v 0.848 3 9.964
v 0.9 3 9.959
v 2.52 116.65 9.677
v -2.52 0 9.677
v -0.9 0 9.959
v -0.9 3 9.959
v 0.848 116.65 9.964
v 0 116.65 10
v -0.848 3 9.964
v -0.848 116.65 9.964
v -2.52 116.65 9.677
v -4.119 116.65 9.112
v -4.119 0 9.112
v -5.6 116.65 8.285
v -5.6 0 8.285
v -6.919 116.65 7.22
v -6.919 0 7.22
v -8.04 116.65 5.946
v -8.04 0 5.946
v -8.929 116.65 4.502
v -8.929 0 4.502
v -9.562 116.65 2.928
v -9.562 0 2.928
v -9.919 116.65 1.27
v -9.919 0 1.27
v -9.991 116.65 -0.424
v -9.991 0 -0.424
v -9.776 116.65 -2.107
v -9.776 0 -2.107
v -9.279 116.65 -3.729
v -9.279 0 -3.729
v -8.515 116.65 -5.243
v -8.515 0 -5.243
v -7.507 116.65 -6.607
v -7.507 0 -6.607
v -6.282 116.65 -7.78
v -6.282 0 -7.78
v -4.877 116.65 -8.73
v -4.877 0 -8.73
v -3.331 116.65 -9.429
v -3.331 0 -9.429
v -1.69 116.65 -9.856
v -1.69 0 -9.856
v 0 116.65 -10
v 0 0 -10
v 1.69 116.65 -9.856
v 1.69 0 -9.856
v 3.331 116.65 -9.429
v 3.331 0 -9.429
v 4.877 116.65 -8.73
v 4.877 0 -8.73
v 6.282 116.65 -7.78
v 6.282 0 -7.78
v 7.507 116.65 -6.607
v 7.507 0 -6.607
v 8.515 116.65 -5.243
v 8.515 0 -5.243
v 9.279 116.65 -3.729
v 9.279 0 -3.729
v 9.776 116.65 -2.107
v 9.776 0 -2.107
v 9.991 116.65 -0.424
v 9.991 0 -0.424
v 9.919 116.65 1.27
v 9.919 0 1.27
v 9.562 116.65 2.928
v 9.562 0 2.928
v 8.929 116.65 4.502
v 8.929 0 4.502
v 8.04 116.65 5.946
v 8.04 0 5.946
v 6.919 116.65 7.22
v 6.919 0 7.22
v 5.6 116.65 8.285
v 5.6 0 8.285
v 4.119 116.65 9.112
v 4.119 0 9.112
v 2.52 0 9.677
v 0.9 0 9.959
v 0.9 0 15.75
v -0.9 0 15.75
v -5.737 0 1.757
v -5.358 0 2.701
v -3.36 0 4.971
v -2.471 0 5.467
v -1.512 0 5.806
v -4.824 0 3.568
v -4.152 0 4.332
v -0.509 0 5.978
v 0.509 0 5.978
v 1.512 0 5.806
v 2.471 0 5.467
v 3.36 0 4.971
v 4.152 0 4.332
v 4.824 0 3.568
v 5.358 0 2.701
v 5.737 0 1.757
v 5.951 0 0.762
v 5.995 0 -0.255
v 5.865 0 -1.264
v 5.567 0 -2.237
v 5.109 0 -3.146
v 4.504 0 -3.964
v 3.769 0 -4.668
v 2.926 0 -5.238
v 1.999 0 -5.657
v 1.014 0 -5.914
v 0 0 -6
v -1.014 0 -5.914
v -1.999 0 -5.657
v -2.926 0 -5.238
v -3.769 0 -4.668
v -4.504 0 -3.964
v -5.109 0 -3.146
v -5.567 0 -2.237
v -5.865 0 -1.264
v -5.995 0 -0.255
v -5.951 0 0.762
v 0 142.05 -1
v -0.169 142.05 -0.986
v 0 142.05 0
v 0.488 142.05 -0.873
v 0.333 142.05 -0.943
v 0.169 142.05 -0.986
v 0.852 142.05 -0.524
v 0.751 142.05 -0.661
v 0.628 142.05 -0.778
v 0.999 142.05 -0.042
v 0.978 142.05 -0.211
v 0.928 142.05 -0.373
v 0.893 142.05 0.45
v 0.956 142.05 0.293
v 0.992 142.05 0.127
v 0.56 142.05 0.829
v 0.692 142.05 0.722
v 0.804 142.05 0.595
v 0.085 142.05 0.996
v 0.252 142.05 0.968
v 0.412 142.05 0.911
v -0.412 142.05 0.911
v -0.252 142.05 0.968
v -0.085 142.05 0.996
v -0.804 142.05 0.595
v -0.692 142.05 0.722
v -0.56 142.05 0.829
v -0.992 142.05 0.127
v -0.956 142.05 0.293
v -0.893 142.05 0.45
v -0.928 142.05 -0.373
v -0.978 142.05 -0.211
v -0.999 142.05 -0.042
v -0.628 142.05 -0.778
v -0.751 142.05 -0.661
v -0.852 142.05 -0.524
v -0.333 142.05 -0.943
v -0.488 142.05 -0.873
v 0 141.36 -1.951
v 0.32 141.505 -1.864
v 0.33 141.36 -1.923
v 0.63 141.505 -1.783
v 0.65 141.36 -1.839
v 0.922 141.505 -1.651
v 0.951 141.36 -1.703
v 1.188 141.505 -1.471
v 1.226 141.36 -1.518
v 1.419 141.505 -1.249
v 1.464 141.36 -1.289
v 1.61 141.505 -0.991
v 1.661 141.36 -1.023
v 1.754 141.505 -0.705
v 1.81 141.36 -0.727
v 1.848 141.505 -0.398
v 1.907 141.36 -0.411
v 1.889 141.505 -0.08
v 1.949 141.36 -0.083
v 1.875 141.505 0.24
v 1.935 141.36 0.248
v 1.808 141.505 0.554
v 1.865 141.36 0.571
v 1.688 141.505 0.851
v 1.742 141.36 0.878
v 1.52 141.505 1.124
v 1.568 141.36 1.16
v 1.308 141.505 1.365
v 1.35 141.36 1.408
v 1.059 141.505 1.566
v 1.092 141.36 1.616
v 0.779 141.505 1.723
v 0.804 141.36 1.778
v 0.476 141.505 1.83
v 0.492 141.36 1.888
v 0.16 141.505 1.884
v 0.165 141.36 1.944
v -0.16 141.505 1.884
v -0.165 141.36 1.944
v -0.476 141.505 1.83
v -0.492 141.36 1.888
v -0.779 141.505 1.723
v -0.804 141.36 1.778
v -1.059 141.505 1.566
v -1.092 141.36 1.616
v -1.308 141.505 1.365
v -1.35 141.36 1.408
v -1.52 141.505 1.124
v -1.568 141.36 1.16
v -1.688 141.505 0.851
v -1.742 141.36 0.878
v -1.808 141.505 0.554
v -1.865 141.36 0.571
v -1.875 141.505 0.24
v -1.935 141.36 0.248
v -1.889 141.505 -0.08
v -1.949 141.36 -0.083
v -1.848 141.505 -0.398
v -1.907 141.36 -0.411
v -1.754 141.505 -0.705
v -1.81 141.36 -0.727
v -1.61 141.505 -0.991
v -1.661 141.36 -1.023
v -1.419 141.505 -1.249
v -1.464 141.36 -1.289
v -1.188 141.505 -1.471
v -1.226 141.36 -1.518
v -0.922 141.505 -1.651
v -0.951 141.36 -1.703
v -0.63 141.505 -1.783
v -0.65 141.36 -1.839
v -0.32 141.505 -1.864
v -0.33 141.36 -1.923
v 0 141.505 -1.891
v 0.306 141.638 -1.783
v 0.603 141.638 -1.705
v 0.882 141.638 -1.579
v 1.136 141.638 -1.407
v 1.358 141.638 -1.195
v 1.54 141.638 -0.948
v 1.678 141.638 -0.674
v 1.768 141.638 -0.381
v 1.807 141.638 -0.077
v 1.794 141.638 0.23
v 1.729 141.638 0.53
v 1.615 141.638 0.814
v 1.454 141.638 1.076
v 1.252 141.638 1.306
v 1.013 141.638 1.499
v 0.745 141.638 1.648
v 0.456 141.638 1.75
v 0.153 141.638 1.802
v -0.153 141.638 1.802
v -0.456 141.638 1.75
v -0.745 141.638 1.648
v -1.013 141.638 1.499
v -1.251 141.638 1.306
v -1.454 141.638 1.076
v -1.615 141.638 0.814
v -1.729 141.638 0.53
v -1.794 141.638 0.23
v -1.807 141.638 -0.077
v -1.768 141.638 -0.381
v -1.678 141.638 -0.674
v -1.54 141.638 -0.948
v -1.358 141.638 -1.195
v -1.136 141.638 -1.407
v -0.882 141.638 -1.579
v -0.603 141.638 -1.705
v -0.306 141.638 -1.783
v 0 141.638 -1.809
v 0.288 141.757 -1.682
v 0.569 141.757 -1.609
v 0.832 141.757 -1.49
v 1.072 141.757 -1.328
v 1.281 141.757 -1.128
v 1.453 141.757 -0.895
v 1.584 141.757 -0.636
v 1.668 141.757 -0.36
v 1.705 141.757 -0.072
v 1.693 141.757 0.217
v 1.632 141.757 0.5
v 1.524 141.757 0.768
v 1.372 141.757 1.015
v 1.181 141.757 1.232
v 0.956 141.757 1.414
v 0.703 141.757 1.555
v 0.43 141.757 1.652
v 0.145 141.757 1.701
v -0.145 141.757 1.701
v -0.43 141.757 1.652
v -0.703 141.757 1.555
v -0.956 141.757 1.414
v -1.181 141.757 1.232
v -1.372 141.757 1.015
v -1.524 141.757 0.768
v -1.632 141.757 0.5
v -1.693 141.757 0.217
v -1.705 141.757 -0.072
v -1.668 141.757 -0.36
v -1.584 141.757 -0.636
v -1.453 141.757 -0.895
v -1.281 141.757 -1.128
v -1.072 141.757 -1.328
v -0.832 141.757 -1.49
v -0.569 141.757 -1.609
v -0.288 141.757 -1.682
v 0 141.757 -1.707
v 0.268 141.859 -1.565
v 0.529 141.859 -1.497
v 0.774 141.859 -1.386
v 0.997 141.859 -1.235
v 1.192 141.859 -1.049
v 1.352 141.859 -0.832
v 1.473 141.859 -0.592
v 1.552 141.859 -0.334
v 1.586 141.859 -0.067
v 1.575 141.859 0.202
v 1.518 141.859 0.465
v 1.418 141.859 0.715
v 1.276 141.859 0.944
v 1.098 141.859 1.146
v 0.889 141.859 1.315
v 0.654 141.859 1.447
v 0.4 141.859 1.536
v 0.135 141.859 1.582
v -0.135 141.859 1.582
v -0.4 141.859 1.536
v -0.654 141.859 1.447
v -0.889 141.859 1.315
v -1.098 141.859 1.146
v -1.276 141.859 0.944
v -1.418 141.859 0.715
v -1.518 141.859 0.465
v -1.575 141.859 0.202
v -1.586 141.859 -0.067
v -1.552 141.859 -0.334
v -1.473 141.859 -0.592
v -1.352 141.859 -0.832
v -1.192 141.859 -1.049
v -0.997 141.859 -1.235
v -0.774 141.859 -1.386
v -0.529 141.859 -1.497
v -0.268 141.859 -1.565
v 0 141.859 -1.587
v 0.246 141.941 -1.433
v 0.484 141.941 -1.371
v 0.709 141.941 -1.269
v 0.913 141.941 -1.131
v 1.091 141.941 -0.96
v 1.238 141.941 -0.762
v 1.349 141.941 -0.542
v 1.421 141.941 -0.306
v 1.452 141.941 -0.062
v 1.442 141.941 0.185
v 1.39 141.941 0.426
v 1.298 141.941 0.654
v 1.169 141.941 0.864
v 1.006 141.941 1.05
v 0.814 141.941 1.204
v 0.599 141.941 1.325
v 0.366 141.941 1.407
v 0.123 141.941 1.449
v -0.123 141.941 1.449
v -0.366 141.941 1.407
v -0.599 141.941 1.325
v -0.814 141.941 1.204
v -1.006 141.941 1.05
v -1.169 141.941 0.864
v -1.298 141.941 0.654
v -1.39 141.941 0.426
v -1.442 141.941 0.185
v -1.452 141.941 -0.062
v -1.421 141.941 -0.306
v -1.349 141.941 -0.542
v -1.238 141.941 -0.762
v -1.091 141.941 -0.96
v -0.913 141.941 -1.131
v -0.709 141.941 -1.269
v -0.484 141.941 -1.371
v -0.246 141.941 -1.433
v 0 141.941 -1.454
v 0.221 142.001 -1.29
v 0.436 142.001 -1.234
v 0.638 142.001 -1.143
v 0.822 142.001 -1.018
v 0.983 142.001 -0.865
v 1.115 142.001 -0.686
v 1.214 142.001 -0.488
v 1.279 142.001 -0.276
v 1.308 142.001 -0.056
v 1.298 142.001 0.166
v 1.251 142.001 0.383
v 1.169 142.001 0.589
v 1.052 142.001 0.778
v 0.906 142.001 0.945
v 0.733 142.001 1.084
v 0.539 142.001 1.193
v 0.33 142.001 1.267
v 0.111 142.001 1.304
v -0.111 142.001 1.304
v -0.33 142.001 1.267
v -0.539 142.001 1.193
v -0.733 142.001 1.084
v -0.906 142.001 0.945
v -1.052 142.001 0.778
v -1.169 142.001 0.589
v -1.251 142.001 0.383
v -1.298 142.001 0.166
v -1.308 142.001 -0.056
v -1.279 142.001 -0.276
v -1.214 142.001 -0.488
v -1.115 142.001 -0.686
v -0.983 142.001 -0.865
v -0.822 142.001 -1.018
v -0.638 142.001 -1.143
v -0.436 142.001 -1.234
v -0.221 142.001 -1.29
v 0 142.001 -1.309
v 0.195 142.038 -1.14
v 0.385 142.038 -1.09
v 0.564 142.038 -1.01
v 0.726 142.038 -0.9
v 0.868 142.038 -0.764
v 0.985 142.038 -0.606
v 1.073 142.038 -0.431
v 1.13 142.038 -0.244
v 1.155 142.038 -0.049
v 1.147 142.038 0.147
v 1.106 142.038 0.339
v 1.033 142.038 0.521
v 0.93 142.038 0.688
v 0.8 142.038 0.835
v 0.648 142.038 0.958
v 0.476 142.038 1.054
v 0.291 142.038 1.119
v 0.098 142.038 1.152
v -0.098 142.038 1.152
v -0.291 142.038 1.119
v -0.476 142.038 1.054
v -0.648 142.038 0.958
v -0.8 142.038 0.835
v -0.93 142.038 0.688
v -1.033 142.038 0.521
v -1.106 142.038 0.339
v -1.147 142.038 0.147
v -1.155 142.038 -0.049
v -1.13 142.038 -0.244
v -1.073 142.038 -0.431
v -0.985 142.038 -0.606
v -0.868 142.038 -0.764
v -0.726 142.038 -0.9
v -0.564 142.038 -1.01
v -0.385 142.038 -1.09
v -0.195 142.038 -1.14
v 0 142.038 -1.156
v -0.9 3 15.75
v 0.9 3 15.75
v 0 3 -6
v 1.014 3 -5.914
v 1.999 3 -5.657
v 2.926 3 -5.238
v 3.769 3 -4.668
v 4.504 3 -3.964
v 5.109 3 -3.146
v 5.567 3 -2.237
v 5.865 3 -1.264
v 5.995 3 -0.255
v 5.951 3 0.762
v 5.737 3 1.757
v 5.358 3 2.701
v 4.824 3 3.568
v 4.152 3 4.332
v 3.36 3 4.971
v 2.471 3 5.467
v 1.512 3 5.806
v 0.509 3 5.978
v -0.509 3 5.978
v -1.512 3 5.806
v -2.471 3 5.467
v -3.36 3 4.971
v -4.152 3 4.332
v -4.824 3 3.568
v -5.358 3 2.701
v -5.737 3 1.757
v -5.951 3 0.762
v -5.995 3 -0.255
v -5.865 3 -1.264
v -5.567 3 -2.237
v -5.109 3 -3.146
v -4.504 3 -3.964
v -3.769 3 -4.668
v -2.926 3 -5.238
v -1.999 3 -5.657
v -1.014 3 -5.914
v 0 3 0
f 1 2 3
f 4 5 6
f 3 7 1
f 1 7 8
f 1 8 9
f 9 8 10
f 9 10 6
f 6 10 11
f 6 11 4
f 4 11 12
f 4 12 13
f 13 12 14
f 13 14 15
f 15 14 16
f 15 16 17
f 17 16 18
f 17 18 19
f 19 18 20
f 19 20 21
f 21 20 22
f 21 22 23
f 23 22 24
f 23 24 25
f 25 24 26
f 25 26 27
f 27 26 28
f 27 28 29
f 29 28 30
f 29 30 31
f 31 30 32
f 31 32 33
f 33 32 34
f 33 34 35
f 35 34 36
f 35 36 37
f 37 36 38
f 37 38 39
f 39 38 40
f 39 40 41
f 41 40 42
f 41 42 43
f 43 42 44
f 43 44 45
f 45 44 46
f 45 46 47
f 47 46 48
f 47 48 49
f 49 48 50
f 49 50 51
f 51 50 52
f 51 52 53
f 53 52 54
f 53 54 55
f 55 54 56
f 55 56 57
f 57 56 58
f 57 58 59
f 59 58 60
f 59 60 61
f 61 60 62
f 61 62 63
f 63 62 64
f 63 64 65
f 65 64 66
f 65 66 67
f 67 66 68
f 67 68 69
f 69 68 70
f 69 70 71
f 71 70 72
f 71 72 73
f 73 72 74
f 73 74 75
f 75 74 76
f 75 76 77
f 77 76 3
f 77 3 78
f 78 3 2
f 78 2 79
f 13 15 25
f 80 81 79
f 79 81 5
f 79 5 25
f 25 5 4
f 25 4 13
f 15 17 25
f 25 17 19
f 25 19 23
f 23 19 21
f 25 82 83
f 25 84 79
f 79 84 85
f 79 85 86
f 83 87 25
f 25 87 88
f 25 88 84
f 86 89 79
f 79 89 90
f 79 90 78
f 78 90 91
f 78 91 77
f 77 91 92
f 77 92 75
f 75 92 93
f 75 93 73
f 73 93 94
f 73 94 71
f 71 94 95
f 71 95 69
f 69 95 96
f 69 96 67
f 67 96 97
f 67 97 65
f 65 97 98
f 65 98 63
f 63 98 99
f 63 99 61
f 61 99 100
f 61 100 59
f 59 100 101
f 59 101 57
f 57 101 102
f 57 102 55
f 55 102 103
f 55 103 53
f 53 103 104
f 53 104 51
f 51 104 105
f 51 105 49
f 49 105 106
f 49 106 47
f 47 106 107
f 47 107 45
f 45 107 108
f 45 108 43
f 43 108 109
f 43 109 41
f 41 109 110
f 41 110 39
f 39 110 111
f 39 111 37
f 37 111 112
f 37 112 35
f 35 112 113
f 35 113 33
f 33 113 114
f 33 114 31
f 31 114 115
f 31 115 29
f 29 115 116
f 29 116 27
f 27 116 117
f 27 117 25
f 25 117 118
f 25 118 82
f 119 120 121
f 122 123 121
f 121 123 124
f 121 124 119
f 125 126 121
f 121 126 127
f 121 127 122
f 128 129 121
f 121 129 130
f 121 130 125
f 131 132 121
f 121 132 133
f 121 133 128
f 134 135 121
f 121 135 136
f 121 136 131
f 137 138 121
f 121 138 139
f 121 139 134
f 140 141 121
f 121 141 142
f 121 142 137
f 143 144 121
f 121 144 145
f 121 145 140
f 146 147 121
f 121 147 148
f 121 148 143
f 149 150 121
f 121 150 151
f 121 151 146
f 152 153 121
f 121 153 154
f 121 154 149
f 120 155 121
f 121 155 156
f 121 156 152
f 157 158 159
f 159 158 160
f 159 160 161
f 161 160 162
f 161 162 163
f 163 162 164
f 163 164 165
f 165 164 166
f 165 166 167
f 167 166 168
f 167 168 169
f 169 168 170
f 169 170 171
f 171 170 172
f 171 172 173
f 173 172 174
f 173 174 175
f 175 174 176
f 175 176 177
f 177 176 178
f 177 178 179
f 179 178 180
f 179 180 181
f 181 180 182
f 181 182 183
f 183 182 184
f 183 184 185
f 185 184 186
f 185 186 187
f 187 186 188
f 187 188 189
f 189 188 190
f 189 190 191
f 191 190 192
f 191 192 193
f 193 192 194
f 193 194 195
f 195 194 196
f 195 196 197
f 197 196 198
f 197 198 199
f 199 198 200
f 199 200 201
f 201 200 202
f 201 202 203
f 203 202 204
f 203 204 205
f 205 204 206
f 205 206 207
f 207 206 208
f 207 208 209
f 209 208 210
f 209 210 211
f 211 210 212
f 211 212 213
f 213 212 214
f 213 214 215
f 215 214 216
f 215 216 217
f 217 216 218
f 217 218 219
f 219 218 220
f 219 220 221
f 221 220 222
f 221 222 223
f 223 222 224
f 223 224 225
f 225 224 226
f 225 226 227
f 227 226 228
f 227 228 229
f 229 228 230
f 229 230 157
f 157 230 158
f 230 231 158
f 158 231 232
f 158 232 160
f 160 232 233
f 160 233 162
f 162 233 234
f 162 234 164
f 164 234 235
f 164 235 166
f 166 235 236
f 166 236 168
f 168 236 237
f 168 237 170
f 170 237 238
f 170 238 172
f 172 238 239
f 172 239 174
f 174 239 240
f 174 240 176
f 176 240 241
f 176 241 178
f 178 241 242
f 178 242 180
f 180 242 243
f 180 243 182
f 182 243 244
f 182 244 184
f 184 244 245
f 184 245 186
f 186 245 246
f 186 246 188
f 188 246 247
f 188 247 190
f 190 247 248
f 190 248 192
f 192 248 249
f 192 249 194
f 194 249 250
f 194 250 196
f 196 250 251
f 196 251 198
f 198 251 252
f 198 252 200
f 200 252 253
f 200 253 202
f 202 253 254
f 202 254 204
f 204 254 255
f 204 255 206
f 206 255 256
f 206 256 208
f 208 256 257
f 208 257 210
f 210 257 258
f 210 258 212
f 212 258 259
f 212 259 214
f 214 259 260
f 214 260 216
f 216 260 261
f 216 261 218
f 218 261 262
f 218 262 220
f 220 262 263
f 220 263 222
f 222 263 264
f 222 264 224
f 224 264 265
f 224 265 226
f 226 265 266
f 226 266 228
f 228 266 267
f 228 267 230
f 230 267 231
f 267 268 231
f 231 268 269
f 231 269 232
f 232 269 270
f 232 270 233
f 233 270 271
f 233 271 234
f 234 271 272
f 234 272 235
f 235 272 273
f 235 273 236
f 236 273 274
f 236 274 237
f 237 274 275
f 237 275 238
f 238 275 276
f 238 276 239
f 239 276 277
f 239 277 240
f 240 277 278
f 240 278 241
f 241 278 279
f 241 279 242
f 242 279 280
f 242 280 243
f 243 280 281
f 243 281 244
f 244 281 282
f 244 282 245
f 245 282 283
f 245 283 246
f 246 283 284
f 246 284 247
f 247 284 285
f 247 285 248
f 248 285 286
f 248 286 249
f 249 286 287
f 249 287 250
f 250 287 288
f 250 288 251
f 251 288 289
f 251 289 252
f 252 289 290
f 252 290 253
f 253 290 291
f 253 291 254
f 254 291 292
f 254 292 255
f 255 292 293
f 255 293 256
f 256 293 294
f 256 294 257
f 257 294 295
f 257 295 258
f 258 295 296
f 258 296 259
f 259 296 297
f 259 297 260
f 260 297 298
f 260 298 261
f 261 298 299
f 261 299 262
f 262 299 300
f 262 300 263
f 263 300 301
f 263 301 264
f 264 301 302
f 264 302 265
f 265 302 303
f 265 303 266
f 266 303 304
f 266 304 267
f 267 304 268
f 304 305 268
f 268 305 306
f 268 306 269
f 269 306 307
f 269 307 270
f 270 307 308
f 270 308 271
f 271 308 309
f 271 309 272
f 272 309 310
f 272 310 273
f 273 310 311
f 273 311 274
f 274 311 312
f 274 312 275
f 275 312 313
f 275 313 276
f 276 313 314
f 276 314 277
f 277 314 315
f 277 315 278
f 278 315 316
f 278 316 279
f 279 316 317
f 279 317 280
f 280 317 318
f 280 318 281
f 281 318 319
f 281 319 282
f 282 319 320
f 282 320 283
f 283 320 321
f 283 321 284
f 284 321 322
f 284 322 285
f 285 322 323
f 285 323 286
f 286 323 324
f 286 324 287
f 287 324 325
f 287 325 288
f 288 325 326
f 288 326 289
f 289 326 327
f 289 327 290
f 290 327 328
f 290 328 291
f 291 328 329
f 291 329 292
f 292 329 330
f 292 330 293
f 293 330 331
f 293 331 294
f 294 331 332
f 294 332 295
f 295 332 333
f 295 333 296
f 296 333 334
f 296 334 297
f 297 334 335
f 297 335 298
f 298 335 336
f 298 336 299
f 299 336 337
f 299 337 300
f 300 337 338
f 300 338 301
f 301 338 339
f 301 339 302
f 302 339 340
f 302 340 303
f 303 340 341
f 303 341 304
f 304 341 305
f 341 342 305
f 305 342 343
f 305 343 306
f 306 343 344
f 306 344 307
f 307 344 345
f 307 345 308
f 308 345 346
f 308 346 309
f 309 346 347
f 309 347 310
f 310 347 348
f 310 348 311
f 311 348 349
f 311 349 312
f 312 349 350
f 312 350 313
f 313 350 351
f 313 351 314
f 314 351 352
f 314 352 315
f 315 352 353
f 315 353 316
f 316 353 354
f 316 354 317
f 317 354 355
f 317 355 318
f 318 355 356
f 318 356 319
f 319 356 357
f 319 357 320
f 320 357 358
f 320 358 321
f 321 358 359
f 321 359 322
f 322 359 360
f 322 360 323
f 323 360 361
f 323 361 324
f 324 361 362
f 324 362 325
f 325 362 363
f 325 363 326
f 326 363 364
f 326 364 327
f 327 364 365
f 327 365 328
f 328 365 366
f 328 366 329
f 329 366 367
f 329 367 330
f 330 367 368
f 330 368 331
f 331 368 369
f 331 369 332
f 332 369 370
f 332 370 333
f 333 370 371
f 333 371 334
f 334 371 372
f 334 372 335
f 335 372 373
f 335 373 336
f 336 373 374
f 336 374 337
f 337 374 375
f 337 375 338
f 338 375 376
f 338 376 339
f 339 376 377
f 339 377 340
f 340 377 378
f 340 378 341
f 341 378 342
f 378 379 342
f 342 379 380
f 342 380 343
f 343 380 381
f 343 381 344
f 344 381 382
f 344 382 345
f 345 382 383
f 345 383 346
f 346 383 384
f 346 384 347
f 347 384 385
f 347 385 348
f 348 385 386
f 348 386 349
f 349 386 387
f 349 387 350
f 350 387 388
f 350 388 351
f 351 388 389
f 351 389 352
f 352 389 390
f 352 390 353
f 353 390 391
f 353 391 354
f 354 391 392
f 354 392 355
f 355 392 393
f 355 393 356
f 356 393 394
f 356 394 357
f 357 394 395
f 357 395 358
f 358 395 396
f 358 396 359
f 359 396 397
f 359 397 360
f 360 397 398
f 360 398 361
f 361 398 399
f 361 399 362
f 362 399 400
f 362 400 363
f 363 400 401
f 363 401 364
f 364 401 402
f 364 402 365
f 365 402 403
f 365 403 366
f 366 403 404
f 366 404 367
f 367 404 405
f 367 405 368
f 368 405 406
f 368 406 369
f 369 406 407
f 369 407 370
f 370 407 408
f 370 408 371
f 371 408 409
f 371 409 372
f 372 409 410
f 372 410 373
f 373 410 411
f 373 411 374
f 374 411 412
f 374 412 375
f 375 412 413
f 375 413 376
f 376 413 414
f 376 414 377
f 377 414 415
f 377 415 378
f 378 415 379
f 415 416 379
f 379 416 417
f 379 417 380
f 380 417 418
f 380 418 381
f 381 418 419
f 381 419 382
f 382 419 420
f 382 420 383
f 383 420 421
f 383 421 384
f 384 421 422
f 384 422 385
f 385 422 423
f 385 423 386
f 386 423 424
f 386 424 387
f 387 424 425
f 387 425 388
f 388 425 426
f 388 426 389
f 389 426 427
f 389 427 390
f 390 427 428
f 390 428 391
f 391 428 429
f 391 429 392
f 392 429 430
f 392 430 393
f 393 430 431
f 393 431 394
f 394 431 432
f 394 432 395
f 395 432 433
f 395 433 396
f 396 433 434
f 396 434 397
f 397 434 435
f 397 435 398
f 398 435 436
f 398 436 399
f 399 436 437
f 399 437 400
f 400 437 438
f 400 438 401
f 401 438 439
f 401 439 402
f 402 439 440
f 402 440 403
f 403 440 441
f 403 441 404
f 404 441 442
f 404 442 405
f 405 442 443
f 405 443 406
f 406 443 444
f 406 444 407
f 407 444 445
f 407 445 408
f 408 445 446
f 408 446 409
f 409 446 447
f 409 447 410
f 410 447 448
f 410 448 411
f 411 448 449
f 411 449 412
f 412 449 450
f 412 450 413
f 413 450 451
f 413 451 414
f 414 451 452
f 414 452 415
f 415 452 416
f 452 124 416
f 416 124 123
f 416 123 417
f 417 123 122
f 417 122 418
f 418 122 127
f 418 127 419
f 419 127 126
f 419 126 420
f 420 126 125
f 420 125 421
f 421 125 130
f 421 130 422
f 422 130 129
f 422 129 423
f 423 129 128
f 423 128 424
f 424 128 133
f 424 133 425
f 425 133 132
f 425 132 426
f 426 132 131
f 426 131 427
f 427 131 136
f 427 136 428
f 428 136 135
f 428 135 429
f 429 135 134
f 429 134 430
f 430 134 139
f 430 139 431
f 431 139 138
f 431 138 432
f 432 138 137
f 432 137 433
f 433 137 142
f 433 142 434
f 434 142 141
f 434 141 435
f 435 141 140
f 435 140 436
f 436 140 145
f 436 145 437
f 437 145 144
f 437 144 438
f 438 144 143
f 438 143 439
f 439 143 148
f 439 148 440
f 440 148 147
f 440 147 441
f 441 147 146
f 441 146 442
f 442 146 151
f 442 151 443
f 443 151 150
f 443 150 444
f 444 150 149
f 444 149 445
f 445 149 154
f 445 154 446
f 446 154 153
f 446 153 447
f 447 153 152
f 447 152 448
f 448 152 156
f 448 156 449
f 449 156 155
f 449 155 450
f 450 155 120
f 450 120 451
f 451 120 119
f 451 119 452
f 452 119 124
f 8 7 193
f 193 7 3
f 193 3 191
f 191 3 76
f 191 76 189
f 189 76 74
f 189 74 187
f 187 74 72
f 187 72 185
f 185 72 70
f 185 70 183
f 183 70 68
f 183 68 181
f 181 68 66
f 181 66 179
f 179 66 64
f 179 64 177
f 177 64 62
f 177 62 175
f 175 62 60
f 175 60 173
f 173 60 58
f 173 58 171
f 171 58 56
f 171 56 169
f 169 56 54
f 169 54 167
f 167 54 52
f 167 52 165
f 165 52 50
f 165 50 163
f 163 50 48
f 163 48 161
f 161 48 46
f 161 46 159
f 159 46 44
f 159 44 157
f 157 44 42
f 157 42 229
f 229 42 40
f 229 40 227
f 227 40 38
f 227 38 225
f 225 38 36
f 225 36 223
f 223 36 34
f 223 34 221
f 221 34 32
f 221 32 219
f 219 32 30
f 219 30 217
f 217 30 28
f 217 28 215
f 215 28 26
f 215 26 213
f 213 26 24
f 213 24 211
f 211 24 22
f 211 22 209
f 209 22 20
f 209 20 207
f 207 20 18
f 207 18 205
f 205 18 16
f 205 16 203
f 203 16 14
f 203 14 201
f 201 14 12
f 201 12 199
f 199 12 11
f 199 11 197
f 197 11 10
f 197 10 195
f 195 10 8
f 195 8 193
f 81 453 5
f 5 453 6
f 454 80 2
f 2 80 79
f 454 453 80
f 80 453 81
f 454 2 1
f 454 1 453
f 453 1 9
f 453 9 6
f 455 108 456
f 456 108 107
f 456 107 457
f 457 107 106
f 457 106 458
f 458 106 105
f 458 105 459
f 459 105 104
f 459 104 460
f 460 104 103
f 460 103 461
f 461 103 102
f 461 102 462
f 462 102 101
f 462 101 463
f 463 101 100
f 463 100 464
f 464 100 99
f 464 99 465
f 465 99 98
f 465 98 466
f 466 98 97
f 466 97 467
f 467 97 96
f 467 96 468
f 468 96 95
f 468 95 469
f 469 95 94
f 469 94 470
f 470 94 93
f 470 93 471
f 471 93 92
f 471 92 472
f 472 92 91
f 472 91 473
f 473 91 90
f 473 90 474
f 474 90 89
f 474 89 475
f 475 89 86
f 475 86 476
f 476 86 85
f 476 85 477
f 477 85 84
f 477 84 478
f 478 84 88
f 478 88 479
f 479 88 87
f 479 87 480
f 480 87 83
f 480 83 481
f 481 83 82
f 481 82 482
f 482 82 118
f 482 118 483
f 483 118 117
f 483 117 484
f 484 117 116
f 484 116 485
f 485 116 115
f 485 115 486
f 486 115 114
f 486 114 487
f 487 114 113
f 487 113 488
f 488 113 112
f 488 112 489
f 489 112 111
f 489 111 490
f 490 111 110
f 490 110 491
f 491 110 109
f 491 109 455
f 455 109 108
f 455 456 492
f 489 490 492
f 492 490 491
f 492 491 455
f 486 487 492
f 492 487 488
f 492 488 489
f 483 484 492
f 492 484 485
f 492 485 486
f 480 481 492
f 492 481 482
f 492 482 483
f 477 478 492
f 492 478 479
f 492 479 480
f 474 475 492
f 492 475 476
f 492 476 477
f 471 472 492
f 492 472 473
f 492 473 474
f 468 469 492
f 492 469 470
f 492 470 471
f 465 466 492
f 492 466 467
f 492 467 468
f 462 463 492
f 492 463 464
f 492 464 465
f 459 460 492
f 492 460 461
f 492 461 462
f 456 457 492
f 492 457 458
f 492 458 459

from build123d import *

# Parameters (mm, degrees)
SKETCH1_R           = 10
BOSS_EXTRUDE1_DEPTH = 116.650008
BOSS_EXTRUDE2_DEPTH = 3
SKETCH4_R           = 6
CUT_EXTRUDE1_DEPTH  = 3


with BuildPart() as part:
    # Sketch1 → Boss-Extrude1 (new body)
    with BuildSketch(Plane(origin=(0, 0, 0), x_dir=(1, 0, 0), z_dir=(0, 1, 0))):
        Circle(SKETCH1_R)
    extrude(amount=BOSS_EXTRUDE1_DEPTH)

    # Sketch2 → Revolve1 (revolve)
    with BuildSketch(Plane.XY):
        with BuildLine():
            Line((0, 116.650008), (0, 142.050008))
            Line((0, 142.050008), (1, 142.050008))
            ThreePointArc((1, 142.050008), (1.587481775, 141.859245397), (1.950824444, 141.359738328))
            Line((1.950824444, 141.359738328), (10, 116.650008))
            Line((10, 116.650008), (0, 116.650008))
        make_face()
    revolve(axis=Axis((0, 116.650008, 0), (0, 1, 0)))

    # Sketch3 → Boss-Extrude2 (add)
    with BuildSketch(Plane.XZ):
        with BuildLine():
            Line((-0.9, 15.75), (0.9, 15.75))
            Line((0.9, 15.75), (0.9, 9.354806465))
            ThreePointArc((0.9, 9.354806465), (0, 9.398), (-0.9, 9.354806465))
            Line((-0.9, 9.354806465), (-0.9, 15.75))
        make_face()
    extrude(amount=-BOSS_EXTRUDE2_DEPTH)

    # Sketch4 → Cut-Extrude1 (cut)
    with BuildSketch(Plane.XZ):
        Circle(SKETCH4_R)
    extrude(amount=-CUT_EXTRUDE1_DEPTH, mode=Mode.SUBTRACT)


solid = part.part
